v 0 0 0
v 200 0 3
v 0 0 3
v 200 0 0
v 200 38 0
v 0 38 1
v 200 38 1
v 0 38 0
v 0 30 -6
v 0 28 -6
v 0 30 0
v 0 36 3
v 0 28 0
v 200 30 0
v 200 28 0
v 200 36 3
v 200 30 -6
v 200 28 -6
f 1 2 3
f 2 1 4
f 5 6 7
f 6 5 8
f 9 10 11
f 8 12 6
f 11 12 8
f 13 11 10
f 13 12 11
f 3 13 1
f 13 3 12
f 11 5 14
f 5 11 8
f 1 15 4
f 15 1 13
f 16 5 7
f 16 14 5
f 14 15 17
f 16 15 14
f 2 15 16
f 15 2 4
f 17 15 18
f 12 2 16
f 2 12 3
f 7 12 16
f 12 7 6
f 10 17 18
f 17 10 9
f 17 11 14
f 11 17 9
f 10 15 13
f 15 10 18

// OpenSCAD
// Wall-gap strip, optional. Covers the 3 cm gap between a top's wall edge and the wall so
// nothing falls down it. A 200 mm segment; print as many as the run needs (top A's back edge
// and top B's wall edge are 249 cm each; leave the VIVO clamp zones uncovered). It rests on
// the desk's surface with a lip that drops into the gap against the desk's edge, and reaches
// to the wall. Print flat, top face up. A colour near the walnut, or black.

seg   = 200;   // segment length
gap   = 30;    // wall gap
ontop = 8;     // how far it rests on the desk surface
th    = 3;     // thickness
lip   = 6;     // locating lip, hangs into the gap against the desk's edge
chamf = 2;     // chamfer on the edge that faces you

module profile() {   // across the strip: 0 is the wall, gap is the desk's edge
    polygon([[0, 0], [gap + ontop, 0], [gap + ontop, th - chamf], [gap + ontop - chamf, th], [0, th]]);
}
rotate([90, 0, 90]) linear_extrude(seg) profile();   // length along x, across along y, thickness up z
translate([0, gap - 2, -lip]) cube([seg, 2, lip]);    // the lip
